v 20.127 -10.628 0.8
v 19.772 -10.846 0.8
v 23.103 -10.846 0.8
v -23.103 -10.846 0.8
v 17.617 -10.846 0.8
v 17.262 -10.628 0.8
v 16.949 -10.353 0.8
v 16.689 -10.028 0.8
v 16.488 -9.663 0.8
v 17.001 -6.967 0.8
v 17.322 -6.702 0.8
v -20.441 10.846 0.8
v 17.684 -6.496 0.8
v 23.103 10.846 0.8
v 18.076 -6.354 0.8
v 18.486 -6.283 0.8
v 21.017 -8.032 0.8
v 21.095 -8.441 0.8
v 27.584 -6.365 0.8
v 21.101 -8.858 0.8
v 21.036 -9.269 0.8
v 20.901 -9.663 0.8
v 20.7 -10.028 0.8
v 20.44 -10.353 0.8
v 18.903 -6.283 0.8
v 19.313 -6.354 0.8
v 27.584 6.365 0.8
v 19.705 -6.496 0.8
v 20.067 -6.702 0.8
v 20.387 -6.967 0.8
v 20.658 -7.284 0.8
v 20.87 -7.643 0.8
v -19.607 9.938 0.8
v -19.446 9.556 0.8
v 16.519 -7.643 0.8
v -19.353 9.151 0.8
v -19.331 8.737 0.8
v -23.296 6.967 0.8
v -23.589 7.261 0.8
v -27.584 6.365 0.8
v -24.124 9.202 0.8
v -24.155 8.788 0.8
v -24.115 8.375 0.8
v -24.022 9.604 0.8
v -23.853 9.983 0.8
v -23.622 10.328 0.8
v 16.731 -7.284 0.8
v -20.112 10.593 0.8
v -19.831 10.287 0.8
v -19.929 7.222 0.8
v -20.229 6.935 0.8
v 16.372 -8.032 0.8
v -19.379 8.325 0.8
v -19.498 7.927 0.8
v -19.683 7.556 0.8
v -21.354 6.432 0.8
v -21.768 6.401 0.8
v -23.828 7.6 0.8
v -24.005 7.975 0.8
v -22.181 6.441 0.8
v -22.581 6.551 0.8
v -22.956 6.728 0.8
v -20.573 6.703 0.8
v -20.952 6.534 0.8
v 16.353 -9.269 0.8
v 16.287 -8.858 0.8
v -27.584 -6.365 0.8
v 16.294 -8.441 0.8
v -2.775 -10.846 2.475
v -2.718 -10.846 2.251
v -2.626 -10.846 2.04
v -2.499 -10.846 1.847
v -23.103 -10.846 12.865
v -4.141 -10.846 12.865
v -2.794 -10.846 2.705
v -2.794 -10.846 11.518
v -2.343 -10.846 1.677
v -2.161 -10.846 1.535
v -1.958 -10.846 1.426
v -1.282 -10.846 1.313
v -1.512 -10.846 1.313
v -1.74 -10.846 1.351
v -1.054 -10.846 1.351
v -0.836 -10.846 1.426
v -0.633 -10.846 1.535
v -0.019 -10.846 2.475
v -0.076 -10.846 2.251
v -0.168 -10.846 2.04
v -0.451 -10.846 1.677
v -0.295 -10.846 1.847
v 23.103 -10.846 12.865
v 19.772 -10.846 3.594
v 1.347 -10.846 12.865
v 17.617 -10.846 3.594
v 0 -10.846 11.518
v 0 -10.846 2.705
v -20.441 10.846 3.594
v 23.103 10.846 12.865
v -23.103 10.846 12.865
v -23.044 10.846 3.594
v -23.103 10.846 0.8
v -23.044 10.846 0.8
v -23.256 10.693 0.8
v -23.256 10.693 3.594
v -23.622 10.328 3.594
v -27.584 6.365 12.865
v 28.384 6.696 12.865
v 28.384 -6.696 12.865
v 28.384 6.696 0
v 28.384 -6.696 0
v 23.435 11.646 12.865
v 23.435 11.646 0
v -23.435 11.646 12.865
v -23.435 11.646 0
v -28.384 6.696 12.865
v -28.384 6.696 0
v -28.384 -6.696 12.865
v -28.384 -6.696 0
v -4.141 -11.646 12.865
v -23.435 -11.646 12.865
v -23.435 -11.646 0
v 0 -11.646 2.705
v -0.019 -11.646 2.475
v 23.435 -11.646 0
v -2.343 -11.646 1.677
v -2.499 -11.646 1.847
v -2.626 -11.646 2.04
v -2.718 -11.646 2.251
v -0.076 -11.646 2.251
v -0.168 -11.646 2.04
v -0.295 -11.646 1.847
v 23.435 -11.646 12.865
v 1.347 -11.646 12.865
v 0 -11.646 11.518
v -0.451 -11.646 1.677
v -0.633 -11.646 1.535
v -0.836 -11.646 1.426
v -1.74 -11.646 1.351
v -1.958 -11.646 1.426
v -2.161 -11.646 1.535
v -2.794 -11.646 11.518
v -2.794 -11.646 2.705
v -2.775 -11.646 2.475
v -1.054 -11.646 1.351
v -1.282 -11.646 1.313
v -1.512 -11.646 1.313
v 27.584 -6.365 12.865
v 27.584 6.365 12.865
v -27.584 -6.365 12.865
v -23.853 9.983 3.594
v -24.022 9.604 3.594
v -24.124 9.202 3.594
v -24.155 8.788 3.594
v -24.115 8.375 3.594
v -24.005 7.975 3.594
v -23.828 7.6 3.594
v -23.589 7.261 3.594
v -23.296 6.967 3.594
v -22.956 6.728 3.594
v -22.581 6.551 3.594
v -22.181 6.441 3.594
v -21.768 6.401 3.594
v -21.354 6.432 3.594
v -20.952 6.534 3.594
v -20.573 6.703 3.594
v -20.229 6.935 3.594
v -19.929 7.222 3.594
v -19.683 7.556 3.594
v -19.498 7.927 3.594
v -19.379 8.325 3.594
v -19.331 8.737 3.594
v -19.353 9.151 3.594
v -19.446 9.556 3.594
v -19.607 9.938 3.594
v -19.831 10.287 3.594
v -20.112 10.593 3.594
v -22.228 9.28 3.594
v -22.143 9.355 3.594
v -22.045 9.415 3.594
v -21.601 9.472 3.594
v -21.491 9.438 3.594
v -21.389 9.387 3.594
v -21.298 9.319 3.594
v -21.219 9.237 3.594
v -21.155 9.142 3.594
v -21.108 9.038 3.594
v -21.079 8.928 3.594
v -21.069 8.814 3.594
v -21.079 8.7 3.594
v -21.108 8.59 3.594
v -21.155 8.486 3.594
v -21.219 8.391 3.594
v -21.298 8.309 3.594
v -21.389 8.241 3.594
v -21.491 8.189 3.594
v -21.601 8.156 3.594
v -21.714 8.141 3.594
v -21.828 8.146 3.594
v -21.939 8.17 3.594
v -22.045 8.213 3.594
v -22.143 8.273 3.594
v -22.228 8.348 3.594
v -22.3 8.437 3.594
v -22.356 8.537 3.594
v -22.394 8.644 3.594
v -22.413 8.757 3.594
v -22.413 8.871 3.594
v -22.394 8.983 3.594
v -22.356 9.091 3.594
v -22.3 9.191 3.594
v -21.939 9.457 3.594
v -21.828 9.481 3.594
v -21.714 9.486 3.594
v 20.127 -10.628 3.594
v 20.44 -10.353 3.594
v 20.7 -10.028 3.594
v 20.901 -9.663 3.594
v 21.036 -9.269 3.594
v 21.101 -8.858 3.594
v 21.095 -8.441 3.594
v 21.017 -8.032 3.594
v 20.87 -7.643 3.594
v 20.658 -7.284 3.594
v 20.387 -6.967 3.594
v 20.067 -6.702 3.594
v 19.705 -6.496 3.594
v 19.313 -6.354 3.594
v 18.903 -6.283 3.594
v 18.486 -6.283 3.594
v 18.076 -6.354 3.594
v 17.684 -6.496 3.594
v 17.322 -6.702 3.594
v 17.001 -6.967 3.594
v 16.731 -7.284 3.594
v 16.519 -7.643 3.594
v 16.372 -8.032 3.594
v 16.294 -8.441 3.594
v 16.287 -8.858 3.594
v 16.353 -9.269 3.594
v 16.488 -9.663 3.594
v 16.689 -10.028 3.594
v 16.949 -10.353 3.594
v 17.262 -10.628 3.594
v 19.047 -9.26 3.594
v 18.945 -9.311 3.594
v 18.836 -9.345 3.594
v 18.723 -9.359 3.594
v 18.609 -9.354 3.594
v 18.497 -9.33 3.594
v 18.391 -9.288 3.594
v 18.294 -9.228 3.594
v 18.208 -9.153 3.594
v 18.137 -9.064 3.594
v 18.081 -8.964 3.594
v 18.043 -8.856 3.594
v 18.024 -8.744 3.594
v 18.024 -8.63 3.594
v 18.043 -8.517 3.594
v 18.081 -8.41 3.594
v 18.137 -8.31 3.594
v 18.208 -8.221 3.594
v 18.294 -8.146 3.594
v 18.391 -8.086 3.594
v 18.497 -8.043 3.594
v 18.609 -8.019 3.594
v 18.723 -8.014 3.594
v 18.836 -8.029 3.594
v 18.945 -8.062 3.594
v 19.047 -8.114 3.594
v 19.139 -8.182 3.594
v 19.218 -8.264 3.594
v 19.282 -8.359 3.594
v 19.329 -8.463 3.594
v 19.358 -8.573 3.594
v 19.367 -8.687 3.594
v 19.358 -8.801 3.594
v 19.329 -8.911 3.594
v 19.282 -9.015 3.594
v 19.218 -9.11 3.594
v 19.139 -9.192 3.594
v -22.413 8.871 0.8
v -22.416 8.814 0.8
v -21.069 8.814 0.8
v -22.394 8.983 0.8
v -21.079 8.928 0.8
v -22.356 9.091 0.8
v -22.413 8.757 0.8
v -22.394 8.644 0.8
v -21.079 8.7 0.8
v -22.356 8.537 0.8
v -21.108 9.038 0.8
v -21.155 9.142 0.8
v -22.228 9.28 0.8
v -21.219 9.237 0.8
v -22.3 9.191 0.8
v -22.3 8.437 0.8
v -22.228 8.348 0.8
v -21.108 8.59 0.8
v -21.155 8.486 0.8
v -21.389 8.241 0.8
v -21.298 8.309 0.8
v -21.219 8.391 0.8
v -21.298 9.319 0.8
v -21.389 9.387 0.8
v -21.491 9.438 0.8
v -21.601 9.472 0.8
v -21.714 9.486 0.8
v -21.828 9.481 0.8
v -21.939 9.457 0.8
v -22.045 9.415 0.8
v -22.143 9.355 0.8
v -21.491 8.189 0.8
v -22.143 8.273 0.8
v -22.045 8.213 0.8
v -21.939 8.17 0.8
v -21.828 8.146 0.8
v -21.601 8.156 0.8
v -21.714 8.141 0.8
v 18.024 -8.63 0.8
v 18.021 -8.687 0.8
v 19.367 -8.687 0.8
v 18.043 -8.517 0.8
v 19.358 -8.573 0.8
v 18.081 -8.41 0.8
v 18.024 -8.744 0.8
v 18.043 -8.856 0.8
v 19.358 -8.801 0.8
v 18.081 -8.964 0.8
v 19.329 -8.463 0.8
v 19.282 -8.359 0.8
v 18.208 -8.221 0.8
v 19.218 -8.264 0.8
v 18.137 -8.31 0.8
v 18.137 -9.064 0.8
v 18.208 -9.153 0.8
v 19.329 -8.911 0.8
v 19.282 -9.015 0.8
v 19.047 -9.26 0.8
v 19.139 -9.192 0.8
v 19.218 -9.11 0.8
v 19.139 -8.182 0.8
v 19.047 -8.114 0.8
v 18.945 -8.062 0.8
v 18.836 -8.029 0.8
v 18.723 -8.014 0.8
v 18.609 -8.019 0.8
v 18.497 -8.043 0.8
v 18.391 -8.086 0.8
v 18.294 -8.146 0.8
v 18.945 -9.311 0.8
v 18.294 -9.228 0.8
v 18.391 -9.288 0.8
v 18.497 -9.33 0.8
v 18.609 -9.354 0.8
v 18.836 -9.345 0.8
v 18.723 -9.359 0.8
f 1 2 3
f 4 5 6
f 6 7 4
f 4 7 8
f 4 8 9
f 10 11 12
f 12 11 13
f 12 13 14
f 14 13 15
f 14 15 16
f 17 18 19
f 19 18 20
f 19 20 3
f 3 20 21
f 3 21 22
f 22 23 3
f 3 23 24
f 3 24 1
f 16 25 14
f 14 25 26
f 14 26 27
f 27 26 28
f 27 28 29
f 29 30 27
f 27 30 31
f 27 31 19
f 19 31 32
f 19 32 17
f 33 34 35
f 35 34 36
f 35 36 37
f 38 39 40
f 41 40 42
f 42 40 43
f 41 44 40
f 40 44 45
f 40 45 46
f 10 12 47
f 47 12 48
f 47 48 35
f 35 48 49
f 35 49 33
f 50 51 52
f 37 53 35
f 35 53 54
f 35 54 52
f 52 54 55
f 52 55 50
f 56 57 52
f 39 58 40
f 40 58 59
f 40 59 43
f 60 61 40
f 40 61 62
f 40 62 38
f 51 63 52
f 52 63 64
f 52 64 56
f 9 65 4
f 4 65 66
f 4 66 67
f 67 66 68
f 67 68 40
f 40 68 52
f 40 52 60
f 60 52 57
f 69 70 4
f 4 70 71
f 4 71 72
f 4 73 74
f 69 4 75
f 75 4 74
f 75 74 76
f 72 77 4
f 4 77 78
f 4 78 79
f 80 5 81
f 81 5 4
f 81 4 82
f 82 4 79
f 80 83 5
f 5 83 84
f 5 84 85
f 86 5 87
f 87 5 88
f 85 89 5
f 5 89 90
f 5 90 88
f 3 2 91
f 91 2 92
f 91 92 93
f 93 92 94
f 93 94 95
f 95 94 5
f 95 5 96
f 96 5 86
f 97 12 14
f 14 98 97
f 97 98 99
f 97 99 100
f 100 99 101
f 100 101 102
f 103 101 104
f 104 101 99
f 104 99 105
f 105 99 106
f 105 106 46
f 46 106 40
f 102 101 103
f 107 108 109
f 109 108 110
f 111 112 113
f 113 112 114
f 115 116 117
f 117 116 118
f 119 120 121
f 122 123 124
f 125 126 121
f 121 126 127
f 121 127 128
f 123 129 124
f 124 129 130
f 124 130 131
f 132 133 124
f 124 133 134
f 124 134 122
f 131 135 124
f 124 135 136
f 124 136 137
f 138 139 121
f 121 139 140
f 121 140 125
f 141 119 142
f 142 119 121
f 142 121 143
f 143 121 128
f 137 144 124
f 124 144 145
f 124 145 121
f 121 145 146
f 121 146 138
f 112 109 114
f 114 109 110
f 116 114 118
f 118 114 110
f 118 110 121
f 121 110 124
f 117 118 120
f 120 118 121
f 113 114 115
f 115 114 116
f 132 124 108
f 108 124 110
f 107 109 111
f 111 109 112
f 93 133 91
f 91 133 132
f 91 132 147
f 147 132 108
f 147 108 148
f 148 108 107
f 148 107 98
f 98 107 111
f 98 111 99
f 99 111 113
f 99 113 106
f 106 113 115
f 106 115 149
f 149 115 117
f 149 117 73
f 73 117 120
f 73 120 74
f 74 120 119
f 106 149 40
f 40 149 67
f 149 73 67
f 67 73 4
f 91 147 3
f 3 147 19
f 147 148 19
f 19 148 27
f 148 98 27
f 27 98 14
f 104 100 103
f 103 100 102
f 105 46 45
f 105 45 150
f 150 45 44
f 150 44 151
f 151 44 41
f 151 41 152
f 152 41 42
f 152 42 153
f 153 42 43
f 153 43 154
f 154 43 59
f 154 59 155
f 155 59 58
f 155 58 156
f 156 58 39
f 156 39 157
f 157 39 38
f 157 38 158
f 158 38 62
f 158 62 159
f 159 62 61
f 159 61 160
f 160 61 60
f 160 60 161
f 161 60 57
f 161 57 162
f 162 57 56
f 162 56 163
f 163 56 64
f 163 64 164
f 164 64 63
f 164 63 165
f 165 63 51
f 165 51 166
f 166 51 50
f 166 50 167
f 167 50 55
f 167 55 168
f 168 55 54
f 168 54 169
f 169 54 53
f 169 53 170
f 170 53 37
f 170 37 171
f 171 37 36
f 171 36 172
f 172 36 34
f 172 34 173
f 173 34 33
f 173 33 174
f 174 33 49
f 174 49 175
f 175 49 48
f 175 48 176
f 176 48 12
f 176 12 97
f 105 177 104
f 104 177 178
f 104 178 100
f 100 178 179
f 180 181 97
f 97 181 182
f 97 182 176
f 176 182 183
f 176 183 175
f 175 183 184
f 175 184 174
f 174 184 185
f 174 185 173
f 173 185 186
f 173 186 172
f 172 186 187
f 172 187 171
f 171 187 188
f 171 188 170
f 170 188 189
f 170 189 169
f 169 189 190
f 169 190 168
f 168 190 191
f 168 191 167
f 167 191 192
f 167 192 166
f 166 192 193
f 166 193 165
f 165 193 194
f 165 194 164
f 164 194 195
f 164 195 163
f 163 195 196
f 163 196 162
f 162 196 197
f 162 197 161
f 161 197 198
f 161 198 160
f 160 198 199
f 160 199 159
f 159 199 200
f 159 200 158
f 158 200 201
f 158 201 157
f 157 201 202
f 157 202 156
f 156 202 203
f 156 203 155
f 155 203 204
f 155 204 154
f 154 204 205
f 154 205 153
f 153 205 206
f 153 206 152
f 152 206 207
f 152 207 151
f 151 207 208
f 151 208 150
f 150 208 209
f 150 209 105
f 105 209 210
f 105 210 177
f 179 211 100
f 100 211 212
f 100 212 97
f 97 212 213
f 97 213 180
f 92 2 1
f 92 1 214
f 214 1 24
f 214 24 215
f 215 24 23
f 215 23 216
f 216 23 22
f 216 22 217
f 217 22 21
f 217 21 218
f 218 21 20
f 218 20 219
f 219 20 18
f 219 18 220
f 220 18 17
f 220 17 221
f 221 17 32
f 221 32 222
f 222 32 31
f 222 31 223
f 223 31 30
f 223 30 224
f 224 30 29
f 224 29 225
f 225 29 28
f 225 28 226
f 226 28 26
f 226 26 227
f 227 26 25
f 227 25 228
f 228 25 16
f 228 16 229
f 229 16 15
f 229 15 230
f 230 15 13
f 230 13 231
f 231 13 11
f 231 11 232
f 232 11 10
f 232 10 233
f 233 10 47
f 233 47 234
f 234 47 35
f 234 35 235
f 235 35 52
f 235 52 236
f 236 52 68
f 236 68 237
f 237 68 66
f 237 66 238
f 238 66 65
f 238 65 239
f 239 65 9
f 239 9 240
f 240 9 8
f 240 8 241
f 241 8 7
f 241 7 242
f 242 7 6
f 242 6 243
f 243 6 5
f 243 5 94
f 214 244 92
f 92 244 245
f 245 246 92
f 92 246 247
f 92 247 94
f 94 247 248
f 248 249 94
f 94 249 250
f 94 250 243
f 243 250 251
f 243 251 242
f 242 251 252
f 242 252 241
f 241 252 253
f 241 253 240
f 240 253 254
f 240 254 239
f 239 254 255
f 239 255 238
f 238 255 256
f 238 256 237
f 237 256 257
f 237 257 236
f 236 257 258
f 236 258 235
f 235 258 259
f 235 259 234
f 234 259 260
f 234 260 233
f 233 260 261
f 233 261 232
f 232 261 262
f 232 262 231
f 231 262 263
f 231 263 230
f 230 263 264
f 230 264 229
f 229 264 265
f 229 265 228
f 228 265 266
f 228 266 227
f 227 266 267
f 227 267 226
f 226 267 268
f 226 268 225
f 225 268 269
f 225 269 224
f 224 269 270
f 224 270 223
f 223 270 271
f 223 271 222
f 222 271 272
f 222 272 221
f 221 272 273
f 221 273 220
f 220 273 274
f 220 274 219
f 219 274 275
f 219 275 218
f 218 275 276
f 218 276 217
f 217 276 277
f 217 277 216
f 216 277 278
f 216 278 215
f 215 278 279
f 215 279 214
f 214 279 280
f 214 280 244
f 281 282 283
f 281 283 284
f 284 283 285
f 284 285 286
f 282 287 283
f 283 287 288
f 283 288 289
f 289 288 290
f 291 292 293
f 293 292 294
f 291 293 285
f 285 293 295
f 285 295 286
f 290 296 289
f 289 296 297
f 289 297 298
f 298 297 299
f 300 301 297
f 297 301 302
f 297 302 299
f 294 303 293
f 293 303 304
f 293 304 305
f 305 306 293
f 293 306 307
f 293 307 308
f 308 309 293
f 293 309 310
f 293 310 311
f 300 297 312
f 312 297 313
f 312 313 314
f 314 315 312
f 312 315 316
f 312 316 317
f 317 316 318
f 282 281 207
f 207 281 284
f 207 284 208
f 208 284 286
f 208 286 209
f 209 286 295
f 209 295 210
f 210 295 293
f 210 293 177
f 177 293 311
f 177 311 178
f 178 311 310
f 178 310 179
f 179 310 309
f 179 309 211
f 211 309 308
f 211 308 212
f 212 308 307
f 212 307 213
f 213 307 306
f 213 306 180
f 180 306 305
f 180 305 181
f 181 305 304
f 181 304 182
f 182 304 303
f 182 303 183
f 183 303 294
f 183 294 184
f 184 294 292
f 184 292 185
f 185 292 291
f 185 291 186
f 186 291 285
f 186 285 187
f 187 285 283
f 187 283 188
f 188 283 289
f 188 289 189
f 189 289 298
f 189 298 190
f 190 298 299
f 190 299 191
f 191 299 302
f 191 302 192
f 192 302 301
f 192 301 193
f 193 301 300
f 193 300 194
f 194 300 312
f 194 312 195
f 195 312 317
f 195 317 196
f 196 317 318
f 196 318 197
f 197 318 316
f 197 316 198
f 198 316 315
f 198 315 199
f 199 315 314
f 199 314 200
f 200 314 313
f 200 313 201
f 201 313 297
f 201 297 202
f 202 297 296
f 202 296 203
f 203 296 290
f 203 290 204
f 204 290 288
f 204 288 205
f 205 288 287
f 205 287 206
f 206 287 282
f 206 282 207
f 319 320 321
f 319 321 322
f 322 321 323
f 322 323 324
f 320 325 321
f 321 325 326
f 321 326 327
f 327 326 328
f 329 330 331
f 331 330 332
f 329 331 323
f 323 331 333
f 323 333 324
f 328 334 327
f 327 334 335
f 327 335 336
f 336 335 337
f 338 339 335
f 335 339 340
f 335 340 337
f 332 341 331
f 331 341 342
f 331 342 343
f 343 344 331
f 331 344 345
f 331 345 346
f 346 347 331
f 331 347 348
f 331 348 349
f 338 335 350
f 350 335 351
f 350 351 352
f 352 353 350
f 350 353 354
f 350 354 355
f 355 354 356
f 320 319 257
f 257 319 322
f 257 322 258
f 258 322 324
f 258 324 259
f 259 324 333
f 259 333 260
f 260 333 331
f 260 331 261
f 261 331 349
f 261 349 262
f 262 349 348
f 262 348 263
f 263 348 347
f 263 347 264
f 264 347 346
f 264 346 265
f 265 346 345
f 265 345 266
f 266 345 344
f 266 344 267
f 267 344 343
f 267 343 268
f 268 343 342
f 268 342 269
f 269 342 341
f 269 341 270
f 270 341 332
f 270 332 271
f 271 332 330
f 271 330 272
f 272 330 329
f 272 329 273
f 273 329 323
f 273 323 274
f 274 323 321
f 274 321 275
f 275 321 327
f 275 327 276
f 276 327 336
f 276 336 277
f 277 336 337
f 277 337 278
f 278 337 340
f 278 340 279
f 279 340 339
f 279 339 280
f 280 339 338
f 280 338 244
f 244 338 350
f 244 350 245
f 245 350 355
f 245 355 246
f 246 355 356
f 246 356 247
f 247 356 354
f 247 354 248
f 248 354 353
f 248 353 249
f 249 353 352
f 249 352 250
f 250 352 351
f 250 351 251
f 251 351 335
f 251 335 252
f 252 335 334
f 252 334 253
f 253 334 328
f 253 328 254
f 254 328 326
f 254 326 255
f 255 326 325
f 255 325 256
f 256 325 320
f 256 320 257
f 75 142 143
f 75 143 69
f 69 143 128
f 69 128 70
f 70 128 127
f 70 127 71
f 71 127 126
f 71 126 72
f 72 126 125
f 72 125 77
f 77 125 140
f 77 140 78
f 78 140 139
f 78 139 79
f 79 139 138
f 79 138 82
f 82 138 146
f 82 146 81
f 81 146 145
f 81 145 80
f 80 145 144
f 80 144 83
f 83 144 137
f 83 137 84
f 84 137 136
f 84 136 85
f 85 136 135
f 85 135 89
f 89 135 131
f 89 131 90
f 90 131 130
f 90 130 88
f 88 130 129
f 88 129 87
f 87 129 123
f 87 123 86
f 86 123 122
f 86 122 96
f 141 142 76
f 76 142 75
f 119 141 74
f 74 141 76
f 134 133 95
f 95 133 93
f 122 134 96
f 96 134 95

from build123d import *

# Parameters (mm, degrees)
SKETCH1_W           = 56.768800102
SKETCH1_H           = 23.291600102
BOSS_EXTRUDE1_DEPTH = 0.8
CUT_EXTRUDE1_DEPTH  = 1.8
BOSS_EXTRUDE2_DEPTH = 12.065
SKETCH4_R           = 2.413
BOSS_EXTRUDE3_DEPTH = 2.794
SKETCH5_R           = 0.6731
CUT_EXTRUDE2_DEPTH  = 2.794
CUT_EXTRUDE3_DEPTH  = 2.794


with BuildPart() as part:
    # Sketch1 → Boss-Extrude1 (new body)
    with BuildSketch(Plane.XY):
        Rectangle(SKETCH1_W, SKETCH1_H)
    extrude(amount=BOSS_EXTRUDE1_DEPTH)

    # Sketch2 → Cut-Extrude1 (cut, through all)
    with BuildSketch(Plane.XY.offset(0.8)):
        Polygon((-28.384400051, -6.696052583), (-23.434652583, -11.645800051), (-28.384400051, -11.645800051), align=None)
        Polygon((-28.384400051, 6.696052583), (-23.434652583, 11.645800051), (-28.384400051, 11.645800051), align=None)
        Polygon((23.434652583, -11.645800051), (28.384400051, -6.696052583), (28.384400051, -11.645800051), align=None)
        Polygon((23.434652583, 11.645800051), (28.384400051, 6.696052583), (28.384400051, 11.645800051), align=None)
    extrude(amount=-CUT_EXTRUDE1_DEPTH, mode=Mode.SUBTRACT)

    # Sketch3 → Boss-Extrude2 (add)
    with BuildSketch(Plane.XY.offset(0.8)):
        Polygon((23.434652583, 11.645800051), (-23.434652583, 11.645800051), (-28.384400051, 6.696052583), (-28.384400051, -6.696052583), (-23.434652583, -11.645800051), (23.434652583, -11.645800051), (28.384400051, -6.696052583), (28.384400051, 6.696052583), align=None)
        Polygon((-23.103281733, 10.845800051), (-27.584400051, 6.364681733), (-27.584400051, -6.364681733), (-23.103281733, -10.845800051), (23.103281733, -10.845800051), (27.584400051, -6.364681733), (27.584400051, 6.364681733), (23.103281733, 10.845800051), align=None, mode=Mode.SUBTRACT)
    extrude(amount=BOSS_EXTRUDE2_DEPTH)

    # Sketch4 → Boss-Extrude3 (add)
    with BuildSketch(Plane.XY.offset(0.8)):
        with Locations((-21.742400051, 8.813800051)):
            Circle(SKETCH4_R)
        with Locations((18.694400051, -8.686800051)):
            Circle(SKETCH4_R)
    extrude(amount=BOSS_EXTRUDE3_DEPTH)

    # Sketch5 → Cut-Extrude2 (cut)
    with BuildSketch(Plane.XY.offset(3.594)):
        with Locations((-21.742400051, 8.813800051)):
            Circle(SKETCH5_R)
        with Locations((18.694400051, -8.686800051)):
            Circle(SKETCH5_R)
    extrude(amount=-CUT_EXTRUDE2_DEPTH, mode=Mode.SUBTRACT)

    # Sketch6 → Cut-Extrude3 (cut)
    with BuildSketch(Plane(origin=(0, -11.645800051, 0), x_dir=(-1, 0, 0), z_dir=(0, -1, 0))):
        with BuildLine():
            Line((-1.347038418, -12.865), (4.141038418, -12.865))
            Line((4.141038418, -12.865), (2.794, -11.517961582))
            Line((2.794, -11.517961582), (2.794, -2.705))
            ThreePointArc((2.794, -2.705), (1.397, -1.308), (0, -2.705))
            Line((0, -2.705), (0, -11.517961582))
            Line((0, -11.517961582), (-1.347038418, -12.865))
        make_face()
    extrude(amount=-CUT_EXTRUDE3_DEPTH, mode=Mode.SUBTRACT)


solid = part.part
